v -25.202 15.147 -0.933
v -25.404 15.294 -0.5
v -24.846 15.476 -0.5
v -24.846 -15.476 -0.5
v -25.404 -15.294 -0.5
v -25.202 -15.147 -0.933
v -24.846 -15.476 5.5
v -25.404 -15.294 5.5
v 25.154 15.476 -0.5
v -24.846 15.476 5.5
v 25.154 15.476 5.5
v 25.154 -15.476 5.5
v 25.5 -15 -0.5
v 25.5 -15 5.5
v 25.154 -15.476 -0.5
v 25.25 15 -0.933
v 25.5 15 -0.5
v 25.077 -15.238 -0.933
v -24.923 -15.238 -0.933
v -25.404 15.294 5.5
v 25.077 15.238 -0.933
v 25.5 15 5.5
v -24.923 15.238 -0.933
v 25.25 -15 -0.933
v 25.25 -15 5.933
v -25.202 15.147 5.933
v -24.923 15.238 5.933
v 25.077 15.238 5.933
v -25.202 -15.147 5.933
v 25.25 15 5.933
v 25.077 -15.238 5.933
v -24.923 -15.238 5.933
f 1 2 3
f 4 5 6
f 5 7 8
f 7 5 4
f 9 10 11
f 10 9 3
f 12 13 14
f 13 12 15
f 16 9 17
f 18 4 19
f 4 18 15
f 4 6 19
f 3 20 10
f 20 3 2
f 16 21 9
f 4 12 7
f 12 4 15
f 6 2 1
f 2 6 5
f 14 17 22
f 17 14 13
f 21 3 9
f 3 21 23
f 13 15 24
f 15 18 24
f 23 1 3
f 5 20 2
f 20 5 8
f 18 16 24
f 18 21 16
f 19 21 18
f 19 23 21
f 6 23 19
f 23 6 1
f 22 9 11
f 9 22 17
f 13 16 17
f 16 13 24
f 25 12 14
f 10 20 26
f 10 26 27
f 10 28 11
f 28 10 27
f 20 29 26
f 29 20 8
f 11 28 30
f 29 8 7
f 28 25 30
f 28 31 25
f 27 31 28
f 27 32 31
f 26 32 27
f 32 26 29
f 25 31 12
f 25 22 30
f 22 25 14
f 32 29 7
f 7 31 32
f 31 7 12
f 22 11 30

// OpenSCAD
// Define the dimensions of the rectangular plate
module rectangular_plate(length, width, thickness) {
    // Adjusted thickness to match original model
    cube([length, width, thickness], center = true);
}

// Parameters for the rectangular plate
plate_length = 50;  // Length of the plate
plate_width = 30;   // Width of the plate
plate_thickness = 1; // Thickness of the plate (reduced to match original model)

// Number of plates
num_plates = 6;

// Stack the plates uniformly in the same vertical alignment
for (i = [0 : num_plates - 1]) {
    translate([0, 0, i * plate_thickness])
        rectangular_plate(plate_length, plate_width, plate_thickness);
}

// Refinements for smooth edges and polished surface
module refined_plate(length, width, thickness) {
    // Adding fillet for smooth edges
    minkowski() {
        cube([length, width, thickness], center = true);
        sphere(0.5); // Small sphere for edge smoothing
    }
}

// Replace rectangular_plate with refined_plate for smoother edges
for (i = [0 : num_plates - 1]) {
    translate([0, 0, i * plate_thickness])
        refined_plate(plate_length, plate_width, plate_thickness);
}

// Ensure alignment and flatness
translate([0, 0, 0]) {
    for (i = [0 : num_plates - 1]) {
        translate([0, 0, i * plate_thickness])
            refined_plate(plate_length, plate_width, plate_thickness);
    }
}
